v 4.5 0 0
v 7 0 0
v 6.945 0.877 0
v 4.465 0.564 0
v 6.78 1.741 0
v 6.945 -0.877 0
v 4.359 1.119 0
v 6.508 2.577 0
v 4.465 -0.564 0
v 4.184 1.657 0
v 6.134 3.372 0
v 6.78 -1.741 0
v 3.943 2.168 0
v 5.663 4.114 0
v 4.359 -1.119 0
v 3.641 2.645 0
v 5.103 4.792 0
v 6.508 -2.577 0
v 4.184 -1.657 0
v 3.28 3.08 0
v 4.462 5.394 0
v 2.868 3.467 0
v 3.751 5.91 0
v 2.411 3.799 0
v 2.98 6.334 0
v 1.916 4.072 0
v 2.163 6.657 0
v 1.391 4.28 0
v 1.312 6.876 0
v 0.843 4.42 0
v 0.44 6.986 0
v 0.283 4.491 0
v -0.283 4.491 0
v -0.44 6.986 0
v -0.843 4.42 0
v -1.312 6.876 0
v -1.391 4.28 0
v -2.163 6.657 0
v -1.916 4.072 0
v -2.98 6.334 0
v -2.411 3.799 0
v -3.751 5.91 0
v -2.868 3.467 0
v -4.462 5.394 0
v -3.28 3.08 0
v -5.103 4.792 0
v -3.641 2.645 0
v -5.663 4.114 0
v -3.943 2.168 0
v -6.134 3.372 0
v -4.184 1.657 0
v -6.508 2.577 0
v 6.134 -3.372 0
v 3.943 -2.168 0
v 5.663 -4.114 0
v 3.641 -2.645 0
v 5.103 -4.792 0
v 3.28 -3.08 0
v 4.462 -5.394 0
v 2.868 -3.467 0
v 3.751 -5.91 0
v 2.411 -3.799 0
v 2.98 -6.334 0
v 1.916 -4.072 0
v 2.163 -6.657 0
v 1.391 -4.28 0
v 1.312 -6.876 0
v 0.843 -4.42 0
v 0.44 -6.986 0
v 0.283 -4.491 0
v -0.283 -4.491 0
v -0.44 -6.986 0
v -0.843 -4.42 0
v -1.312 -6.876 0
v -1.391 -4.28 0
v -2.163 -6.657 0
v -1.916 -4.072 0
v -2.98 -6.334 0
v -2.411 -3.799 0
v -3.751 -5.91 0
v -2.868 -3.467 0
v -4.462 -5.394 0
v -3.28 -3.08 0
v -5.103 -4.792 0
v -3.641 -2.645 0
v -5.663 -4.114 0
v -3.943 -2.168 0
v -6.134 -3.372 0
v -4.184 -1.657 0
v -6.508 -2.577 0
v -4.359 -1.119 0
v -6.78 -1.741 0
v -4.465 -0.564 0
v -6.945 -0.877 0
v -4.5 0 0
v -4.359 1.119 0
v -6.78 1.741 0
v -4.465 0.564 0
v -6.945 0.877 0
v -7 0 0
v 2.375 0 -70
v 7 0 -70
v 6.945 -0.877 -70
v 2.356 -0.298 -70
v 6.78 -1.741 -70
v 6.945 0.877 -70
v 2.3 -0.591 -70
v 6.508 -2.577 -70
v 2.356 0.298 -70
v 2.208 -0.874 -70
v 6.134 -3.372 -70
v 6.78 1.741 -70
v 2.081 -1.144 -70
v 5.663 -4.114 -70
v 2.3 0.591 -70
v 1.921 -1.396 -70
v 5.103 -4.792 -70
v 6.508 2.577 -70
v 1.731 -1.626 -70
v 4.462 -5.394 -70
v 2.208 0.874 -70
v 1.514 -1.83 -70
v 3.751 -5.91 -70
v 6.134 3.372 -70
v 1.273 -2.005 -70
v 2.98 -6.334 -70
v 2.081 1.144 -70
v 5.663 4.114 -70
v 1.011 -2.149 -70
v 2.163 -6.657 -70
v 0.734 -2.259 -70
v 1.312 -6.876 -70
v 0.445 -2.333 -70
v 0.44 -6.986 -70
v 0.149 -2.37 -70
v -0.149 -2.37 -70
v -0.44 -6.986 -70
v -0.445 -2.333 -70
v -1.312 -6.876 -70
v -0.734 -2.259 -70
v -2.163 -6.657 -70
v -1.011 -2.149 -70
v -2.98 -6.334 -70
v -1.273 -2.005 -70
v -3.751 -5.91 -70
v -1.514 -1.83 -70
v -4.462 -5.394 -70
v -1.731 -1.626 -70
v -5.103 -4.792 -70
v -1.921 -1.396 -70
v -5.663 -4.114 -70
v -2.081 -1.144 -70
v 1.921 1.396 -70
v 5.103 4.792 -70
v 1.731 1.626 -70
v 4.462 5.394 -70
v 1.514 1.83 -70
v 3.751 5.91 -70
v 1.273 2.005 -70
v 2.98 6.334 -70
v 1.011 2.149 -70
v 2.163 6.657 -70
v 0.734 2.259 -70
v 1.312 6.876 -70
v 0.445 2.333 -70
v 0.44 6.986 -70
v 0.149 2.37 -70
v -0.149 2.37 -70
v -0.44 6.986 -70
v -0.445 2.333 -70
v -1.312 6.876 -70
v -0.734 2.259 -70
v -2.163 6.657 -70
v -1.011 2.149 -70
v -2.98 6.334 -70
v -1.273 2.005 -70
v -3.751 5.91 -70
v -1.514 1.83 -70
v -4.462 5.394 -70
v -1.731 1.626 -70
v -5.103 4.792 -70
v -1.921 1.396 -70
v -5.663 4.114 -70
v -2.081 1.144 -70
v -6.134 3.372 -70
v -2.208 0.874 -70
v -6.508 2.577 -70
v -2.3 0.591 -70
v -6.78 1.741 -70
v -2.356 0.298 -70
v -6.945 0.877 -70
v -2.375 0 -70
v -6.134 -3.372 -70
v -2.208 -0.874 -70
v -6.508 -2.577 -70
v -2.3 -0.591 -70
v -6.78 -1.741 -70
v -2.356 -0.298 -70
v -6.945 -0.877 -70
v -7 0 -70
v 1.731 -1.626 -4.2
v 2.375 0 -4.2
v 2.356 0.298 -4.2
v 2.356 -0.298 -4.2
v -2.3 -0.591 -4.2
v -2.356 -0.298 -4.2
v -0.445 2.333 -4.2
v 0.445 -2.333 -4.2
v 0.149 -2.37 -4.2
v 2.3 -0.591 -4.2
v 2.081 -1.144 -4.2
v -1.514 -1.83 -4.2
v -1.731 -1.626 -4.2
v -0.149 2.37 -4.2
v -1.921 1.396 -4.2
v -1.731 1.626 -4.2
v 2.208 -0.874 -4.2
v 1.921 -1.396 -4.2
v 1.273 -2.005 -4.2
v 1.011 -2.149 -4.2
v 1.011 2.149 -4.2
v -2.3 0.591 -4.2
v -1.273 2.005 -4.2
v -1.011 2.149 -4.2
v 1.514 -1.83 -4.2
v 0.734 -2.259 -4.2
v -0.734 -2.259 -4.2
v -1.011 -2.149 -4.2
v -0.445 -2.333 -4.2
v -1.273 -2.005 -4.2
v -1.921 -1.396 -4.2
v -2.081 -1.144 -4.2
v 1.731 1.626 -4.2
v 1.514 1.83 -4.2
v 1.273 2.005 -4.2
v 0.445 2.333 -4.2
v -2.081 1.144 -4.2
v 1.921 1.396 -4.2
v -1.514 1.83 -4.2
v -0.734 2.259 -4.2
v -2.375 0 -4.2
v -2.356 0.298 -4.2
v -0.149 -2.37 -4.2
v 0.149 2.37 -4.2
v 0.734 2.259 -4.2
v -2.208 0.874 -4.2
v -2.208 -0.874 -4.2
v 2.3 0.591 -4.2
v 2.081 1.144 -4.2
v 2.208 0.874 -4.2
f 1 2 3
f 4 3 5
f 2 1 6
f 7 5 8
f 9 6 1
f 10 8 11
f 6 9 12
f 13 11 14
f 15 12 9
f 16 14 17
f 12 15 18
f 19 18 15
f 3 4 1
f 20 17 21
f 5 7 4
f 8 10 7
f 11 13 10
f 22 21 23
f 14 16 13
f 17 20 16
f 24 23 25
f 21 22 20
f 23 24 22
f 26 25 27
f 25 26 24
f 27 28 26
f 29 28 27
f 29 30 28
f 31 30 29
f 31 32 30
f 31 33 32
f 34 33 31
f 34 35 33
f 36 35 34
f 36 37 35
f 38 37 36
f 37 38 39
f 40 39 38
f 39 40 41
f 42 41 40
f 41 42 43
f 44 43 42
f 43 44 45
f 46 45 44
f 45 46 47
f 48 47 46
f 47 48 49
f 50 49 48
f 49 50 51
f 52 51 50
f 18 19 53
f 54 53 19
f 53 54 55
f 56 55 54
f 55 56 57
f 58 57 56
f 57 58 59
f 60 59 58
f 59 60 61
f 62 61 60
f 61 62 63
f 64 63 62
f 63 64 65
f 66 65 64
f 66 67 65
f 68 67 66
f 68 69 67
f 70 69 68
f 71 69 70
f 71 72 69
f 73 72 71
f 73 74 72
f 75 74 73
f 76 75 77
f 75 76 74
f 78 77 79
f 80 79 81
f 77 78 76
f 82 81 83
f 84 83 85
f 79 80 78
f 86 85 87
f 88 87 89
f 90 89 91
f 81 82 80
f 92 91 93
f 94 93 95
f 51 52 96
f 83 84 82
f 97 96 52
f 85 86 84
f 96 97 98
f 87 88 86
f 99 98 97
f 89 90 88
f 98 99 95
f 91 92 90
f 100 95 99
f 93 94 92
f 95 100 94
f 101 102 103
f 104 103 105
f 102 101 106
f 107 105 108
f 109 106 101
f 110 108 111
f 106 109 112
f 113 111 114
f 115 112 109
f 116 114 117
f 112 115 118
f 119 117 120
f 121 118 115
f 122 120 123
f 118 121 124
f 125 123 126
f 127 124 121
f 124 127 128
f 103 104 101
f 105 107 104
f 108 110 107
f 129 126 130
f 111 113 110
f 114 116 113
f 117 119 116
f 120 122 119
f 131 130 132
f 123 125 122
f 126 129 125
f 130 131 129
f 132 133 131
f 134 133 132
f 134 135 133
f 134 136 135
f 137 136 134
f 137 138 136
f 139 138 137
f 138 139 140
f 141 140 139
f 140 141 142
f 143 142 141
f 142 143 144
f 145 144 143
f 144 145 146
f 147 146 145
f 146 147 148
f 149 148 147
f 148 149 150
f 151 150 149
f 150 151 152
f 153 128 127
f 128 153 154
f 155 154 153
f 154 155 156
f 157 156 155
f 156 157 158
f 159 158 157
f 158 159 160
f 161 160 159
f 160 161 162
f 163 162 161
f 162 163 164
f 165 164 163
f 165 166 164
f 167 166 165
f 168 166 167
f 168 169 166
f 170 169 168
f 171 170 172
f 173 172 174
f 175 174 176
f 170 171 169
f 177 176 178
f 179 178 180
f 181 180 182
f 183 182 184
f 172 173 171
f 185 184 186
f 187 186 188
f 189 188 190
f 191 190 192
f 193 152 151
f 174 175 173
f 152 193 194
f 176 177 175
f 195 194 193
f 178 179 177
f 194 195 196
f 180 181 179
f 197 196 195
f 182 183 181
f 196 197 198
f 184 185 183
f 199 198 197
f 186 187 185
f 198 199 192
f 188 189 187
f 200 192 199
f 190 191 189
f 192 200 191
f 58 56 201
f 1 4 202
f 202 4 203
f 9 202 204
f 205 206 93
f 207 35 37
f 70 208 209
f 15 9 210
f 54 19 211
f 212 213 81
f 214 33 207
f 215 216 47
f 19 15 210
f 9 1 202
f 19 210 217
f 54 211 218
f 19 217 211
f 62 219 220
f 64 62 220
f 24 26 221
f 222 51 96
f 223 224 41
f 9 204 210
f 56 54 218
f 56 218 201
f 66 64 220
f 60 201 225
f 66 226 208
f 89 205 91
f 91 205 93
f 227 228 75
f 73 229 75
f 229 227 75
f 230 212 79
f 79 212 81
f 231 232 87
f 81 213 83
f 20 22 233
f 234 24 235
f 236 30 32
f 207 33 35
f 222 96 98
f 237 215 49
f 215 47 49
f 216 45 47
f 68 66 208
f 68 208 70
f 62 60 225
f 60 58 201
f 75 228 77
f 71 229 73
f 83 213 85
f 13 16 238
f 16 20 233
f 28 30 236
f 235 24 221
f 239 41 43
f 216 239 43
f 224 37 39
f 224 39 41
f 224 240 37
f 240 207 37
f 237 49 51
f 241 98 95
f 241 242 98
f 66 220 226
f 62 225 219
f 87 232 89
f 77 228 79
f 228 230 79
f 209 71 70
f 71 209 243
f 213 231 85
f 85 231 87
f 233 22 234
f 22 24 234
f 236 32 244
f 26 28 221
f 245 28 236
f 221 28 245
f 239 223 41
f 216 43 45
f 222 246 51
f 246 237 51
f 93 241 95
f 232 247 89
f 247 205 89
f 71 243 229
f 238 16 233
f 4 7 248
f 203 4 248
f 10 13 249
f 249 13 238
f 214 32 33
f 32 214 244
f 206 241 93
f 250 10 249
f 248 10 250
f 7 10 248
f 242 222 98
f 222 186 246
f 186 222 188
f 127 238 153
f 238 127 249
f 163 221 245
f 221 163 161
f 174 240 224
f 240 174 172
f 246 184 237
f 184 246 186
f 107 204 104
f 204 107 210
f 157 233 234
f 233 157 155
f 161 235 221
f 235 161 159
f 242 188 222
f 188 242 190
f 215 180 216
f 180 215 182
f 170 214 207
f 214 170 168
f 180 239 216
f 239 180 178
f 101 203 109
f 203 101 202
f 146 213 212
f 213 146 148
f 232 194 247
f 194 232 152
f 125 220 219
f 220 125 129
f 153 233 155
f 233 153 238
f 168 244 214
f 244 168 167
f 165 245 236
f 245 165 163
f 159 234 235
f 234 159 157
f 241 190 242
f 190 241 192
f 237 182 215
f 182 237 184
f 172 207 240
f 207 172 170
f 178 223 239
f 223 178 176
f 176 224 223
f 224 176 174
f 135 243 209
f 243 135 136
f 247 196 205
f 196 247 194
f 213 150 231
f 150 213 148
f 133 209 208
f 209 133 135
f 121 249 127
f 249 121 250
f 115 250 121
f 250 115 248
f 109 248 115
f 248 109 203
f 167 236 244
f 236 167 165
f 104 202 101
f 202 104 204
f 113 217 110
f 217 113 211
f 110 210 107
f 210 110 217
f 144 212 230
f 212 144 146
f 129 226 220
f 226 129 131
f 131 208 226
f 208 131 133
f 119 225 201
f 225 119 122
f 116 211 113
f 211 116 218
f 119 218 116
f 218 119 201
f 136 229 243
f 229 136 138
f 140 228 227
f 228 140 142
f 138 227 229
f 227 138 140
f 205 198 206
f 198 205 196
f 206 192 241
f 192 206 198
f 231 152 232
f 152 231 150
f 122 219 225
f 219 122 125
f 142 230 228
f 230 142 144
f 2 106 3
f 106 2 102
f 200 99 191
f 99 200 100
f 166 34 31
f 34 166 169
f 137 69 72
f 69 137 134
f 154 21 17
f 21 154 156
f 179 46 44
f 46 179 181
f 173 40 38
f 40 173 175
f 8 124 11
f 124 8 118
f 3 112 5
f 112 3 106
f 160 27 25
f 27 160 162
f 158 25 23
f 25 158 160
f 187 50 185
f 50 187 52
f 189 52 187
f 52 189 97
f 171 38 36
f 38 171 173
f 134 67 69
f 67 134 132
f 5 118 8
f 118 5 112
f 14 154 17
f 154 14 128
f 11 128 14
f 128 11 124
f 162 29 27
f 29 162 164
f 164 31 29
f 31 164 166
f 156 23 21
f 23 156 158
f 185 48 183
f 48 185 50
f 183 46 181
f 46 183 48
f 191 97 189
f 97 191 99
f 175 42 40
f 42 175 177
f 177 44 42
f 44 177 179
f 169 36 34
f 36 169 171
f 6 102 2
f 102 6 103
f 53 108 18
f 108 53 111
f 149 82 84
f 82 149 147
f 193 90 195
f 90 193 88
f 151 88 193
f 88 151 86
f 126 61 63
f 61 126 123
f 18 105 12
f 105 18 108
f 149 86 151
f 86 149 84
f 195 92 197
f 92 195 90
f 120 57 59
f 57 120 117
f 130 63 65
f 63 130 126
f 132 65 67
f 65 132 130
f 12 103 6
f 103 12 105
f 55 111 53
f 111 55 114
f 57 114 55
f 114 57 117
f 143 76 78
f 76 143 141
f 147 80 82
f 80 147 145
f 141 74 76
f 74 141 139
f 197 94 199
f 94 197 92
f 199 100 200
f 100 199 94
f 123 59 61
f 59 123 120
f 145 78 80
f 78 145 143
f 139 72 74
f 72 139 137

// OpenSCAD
$fn = 50;


difference() {
	union() {
		translate(v = [0, 0, -70.0000000000]) {
			cylinder(h = 70, r = 7.0000000000);
		}
		cylinder(h = 0, r = 16.0000000000);
	}
	union() {
		translate(v = [0, 0, 0]) {
			rotate(a = [0, 0, 0]) {
				difference() {
					union() {
						#translate(v = [0, 0, -70.0000000000]) {
							cylinder(h = 70, r = 2.2500000000);
						}
						#translate(v = [0, 0, -4.2000000000]) {
							cylinder(h = 4.2000000000, r = 7.0000000000, r1 = 2.3750000000, r2 = 4.5000000000);
						}
						#translate(v = [0, 0, -70.0000000000]) {
							cylinder(h = 70, r = 2.3750000000);
						}
						#translate(v = [0, 0, -70.0000000000]) {
							cylinder(h = 70, r = 2.2500000000);
						}
					}
					union();
				}
			}
		}
	}
}
